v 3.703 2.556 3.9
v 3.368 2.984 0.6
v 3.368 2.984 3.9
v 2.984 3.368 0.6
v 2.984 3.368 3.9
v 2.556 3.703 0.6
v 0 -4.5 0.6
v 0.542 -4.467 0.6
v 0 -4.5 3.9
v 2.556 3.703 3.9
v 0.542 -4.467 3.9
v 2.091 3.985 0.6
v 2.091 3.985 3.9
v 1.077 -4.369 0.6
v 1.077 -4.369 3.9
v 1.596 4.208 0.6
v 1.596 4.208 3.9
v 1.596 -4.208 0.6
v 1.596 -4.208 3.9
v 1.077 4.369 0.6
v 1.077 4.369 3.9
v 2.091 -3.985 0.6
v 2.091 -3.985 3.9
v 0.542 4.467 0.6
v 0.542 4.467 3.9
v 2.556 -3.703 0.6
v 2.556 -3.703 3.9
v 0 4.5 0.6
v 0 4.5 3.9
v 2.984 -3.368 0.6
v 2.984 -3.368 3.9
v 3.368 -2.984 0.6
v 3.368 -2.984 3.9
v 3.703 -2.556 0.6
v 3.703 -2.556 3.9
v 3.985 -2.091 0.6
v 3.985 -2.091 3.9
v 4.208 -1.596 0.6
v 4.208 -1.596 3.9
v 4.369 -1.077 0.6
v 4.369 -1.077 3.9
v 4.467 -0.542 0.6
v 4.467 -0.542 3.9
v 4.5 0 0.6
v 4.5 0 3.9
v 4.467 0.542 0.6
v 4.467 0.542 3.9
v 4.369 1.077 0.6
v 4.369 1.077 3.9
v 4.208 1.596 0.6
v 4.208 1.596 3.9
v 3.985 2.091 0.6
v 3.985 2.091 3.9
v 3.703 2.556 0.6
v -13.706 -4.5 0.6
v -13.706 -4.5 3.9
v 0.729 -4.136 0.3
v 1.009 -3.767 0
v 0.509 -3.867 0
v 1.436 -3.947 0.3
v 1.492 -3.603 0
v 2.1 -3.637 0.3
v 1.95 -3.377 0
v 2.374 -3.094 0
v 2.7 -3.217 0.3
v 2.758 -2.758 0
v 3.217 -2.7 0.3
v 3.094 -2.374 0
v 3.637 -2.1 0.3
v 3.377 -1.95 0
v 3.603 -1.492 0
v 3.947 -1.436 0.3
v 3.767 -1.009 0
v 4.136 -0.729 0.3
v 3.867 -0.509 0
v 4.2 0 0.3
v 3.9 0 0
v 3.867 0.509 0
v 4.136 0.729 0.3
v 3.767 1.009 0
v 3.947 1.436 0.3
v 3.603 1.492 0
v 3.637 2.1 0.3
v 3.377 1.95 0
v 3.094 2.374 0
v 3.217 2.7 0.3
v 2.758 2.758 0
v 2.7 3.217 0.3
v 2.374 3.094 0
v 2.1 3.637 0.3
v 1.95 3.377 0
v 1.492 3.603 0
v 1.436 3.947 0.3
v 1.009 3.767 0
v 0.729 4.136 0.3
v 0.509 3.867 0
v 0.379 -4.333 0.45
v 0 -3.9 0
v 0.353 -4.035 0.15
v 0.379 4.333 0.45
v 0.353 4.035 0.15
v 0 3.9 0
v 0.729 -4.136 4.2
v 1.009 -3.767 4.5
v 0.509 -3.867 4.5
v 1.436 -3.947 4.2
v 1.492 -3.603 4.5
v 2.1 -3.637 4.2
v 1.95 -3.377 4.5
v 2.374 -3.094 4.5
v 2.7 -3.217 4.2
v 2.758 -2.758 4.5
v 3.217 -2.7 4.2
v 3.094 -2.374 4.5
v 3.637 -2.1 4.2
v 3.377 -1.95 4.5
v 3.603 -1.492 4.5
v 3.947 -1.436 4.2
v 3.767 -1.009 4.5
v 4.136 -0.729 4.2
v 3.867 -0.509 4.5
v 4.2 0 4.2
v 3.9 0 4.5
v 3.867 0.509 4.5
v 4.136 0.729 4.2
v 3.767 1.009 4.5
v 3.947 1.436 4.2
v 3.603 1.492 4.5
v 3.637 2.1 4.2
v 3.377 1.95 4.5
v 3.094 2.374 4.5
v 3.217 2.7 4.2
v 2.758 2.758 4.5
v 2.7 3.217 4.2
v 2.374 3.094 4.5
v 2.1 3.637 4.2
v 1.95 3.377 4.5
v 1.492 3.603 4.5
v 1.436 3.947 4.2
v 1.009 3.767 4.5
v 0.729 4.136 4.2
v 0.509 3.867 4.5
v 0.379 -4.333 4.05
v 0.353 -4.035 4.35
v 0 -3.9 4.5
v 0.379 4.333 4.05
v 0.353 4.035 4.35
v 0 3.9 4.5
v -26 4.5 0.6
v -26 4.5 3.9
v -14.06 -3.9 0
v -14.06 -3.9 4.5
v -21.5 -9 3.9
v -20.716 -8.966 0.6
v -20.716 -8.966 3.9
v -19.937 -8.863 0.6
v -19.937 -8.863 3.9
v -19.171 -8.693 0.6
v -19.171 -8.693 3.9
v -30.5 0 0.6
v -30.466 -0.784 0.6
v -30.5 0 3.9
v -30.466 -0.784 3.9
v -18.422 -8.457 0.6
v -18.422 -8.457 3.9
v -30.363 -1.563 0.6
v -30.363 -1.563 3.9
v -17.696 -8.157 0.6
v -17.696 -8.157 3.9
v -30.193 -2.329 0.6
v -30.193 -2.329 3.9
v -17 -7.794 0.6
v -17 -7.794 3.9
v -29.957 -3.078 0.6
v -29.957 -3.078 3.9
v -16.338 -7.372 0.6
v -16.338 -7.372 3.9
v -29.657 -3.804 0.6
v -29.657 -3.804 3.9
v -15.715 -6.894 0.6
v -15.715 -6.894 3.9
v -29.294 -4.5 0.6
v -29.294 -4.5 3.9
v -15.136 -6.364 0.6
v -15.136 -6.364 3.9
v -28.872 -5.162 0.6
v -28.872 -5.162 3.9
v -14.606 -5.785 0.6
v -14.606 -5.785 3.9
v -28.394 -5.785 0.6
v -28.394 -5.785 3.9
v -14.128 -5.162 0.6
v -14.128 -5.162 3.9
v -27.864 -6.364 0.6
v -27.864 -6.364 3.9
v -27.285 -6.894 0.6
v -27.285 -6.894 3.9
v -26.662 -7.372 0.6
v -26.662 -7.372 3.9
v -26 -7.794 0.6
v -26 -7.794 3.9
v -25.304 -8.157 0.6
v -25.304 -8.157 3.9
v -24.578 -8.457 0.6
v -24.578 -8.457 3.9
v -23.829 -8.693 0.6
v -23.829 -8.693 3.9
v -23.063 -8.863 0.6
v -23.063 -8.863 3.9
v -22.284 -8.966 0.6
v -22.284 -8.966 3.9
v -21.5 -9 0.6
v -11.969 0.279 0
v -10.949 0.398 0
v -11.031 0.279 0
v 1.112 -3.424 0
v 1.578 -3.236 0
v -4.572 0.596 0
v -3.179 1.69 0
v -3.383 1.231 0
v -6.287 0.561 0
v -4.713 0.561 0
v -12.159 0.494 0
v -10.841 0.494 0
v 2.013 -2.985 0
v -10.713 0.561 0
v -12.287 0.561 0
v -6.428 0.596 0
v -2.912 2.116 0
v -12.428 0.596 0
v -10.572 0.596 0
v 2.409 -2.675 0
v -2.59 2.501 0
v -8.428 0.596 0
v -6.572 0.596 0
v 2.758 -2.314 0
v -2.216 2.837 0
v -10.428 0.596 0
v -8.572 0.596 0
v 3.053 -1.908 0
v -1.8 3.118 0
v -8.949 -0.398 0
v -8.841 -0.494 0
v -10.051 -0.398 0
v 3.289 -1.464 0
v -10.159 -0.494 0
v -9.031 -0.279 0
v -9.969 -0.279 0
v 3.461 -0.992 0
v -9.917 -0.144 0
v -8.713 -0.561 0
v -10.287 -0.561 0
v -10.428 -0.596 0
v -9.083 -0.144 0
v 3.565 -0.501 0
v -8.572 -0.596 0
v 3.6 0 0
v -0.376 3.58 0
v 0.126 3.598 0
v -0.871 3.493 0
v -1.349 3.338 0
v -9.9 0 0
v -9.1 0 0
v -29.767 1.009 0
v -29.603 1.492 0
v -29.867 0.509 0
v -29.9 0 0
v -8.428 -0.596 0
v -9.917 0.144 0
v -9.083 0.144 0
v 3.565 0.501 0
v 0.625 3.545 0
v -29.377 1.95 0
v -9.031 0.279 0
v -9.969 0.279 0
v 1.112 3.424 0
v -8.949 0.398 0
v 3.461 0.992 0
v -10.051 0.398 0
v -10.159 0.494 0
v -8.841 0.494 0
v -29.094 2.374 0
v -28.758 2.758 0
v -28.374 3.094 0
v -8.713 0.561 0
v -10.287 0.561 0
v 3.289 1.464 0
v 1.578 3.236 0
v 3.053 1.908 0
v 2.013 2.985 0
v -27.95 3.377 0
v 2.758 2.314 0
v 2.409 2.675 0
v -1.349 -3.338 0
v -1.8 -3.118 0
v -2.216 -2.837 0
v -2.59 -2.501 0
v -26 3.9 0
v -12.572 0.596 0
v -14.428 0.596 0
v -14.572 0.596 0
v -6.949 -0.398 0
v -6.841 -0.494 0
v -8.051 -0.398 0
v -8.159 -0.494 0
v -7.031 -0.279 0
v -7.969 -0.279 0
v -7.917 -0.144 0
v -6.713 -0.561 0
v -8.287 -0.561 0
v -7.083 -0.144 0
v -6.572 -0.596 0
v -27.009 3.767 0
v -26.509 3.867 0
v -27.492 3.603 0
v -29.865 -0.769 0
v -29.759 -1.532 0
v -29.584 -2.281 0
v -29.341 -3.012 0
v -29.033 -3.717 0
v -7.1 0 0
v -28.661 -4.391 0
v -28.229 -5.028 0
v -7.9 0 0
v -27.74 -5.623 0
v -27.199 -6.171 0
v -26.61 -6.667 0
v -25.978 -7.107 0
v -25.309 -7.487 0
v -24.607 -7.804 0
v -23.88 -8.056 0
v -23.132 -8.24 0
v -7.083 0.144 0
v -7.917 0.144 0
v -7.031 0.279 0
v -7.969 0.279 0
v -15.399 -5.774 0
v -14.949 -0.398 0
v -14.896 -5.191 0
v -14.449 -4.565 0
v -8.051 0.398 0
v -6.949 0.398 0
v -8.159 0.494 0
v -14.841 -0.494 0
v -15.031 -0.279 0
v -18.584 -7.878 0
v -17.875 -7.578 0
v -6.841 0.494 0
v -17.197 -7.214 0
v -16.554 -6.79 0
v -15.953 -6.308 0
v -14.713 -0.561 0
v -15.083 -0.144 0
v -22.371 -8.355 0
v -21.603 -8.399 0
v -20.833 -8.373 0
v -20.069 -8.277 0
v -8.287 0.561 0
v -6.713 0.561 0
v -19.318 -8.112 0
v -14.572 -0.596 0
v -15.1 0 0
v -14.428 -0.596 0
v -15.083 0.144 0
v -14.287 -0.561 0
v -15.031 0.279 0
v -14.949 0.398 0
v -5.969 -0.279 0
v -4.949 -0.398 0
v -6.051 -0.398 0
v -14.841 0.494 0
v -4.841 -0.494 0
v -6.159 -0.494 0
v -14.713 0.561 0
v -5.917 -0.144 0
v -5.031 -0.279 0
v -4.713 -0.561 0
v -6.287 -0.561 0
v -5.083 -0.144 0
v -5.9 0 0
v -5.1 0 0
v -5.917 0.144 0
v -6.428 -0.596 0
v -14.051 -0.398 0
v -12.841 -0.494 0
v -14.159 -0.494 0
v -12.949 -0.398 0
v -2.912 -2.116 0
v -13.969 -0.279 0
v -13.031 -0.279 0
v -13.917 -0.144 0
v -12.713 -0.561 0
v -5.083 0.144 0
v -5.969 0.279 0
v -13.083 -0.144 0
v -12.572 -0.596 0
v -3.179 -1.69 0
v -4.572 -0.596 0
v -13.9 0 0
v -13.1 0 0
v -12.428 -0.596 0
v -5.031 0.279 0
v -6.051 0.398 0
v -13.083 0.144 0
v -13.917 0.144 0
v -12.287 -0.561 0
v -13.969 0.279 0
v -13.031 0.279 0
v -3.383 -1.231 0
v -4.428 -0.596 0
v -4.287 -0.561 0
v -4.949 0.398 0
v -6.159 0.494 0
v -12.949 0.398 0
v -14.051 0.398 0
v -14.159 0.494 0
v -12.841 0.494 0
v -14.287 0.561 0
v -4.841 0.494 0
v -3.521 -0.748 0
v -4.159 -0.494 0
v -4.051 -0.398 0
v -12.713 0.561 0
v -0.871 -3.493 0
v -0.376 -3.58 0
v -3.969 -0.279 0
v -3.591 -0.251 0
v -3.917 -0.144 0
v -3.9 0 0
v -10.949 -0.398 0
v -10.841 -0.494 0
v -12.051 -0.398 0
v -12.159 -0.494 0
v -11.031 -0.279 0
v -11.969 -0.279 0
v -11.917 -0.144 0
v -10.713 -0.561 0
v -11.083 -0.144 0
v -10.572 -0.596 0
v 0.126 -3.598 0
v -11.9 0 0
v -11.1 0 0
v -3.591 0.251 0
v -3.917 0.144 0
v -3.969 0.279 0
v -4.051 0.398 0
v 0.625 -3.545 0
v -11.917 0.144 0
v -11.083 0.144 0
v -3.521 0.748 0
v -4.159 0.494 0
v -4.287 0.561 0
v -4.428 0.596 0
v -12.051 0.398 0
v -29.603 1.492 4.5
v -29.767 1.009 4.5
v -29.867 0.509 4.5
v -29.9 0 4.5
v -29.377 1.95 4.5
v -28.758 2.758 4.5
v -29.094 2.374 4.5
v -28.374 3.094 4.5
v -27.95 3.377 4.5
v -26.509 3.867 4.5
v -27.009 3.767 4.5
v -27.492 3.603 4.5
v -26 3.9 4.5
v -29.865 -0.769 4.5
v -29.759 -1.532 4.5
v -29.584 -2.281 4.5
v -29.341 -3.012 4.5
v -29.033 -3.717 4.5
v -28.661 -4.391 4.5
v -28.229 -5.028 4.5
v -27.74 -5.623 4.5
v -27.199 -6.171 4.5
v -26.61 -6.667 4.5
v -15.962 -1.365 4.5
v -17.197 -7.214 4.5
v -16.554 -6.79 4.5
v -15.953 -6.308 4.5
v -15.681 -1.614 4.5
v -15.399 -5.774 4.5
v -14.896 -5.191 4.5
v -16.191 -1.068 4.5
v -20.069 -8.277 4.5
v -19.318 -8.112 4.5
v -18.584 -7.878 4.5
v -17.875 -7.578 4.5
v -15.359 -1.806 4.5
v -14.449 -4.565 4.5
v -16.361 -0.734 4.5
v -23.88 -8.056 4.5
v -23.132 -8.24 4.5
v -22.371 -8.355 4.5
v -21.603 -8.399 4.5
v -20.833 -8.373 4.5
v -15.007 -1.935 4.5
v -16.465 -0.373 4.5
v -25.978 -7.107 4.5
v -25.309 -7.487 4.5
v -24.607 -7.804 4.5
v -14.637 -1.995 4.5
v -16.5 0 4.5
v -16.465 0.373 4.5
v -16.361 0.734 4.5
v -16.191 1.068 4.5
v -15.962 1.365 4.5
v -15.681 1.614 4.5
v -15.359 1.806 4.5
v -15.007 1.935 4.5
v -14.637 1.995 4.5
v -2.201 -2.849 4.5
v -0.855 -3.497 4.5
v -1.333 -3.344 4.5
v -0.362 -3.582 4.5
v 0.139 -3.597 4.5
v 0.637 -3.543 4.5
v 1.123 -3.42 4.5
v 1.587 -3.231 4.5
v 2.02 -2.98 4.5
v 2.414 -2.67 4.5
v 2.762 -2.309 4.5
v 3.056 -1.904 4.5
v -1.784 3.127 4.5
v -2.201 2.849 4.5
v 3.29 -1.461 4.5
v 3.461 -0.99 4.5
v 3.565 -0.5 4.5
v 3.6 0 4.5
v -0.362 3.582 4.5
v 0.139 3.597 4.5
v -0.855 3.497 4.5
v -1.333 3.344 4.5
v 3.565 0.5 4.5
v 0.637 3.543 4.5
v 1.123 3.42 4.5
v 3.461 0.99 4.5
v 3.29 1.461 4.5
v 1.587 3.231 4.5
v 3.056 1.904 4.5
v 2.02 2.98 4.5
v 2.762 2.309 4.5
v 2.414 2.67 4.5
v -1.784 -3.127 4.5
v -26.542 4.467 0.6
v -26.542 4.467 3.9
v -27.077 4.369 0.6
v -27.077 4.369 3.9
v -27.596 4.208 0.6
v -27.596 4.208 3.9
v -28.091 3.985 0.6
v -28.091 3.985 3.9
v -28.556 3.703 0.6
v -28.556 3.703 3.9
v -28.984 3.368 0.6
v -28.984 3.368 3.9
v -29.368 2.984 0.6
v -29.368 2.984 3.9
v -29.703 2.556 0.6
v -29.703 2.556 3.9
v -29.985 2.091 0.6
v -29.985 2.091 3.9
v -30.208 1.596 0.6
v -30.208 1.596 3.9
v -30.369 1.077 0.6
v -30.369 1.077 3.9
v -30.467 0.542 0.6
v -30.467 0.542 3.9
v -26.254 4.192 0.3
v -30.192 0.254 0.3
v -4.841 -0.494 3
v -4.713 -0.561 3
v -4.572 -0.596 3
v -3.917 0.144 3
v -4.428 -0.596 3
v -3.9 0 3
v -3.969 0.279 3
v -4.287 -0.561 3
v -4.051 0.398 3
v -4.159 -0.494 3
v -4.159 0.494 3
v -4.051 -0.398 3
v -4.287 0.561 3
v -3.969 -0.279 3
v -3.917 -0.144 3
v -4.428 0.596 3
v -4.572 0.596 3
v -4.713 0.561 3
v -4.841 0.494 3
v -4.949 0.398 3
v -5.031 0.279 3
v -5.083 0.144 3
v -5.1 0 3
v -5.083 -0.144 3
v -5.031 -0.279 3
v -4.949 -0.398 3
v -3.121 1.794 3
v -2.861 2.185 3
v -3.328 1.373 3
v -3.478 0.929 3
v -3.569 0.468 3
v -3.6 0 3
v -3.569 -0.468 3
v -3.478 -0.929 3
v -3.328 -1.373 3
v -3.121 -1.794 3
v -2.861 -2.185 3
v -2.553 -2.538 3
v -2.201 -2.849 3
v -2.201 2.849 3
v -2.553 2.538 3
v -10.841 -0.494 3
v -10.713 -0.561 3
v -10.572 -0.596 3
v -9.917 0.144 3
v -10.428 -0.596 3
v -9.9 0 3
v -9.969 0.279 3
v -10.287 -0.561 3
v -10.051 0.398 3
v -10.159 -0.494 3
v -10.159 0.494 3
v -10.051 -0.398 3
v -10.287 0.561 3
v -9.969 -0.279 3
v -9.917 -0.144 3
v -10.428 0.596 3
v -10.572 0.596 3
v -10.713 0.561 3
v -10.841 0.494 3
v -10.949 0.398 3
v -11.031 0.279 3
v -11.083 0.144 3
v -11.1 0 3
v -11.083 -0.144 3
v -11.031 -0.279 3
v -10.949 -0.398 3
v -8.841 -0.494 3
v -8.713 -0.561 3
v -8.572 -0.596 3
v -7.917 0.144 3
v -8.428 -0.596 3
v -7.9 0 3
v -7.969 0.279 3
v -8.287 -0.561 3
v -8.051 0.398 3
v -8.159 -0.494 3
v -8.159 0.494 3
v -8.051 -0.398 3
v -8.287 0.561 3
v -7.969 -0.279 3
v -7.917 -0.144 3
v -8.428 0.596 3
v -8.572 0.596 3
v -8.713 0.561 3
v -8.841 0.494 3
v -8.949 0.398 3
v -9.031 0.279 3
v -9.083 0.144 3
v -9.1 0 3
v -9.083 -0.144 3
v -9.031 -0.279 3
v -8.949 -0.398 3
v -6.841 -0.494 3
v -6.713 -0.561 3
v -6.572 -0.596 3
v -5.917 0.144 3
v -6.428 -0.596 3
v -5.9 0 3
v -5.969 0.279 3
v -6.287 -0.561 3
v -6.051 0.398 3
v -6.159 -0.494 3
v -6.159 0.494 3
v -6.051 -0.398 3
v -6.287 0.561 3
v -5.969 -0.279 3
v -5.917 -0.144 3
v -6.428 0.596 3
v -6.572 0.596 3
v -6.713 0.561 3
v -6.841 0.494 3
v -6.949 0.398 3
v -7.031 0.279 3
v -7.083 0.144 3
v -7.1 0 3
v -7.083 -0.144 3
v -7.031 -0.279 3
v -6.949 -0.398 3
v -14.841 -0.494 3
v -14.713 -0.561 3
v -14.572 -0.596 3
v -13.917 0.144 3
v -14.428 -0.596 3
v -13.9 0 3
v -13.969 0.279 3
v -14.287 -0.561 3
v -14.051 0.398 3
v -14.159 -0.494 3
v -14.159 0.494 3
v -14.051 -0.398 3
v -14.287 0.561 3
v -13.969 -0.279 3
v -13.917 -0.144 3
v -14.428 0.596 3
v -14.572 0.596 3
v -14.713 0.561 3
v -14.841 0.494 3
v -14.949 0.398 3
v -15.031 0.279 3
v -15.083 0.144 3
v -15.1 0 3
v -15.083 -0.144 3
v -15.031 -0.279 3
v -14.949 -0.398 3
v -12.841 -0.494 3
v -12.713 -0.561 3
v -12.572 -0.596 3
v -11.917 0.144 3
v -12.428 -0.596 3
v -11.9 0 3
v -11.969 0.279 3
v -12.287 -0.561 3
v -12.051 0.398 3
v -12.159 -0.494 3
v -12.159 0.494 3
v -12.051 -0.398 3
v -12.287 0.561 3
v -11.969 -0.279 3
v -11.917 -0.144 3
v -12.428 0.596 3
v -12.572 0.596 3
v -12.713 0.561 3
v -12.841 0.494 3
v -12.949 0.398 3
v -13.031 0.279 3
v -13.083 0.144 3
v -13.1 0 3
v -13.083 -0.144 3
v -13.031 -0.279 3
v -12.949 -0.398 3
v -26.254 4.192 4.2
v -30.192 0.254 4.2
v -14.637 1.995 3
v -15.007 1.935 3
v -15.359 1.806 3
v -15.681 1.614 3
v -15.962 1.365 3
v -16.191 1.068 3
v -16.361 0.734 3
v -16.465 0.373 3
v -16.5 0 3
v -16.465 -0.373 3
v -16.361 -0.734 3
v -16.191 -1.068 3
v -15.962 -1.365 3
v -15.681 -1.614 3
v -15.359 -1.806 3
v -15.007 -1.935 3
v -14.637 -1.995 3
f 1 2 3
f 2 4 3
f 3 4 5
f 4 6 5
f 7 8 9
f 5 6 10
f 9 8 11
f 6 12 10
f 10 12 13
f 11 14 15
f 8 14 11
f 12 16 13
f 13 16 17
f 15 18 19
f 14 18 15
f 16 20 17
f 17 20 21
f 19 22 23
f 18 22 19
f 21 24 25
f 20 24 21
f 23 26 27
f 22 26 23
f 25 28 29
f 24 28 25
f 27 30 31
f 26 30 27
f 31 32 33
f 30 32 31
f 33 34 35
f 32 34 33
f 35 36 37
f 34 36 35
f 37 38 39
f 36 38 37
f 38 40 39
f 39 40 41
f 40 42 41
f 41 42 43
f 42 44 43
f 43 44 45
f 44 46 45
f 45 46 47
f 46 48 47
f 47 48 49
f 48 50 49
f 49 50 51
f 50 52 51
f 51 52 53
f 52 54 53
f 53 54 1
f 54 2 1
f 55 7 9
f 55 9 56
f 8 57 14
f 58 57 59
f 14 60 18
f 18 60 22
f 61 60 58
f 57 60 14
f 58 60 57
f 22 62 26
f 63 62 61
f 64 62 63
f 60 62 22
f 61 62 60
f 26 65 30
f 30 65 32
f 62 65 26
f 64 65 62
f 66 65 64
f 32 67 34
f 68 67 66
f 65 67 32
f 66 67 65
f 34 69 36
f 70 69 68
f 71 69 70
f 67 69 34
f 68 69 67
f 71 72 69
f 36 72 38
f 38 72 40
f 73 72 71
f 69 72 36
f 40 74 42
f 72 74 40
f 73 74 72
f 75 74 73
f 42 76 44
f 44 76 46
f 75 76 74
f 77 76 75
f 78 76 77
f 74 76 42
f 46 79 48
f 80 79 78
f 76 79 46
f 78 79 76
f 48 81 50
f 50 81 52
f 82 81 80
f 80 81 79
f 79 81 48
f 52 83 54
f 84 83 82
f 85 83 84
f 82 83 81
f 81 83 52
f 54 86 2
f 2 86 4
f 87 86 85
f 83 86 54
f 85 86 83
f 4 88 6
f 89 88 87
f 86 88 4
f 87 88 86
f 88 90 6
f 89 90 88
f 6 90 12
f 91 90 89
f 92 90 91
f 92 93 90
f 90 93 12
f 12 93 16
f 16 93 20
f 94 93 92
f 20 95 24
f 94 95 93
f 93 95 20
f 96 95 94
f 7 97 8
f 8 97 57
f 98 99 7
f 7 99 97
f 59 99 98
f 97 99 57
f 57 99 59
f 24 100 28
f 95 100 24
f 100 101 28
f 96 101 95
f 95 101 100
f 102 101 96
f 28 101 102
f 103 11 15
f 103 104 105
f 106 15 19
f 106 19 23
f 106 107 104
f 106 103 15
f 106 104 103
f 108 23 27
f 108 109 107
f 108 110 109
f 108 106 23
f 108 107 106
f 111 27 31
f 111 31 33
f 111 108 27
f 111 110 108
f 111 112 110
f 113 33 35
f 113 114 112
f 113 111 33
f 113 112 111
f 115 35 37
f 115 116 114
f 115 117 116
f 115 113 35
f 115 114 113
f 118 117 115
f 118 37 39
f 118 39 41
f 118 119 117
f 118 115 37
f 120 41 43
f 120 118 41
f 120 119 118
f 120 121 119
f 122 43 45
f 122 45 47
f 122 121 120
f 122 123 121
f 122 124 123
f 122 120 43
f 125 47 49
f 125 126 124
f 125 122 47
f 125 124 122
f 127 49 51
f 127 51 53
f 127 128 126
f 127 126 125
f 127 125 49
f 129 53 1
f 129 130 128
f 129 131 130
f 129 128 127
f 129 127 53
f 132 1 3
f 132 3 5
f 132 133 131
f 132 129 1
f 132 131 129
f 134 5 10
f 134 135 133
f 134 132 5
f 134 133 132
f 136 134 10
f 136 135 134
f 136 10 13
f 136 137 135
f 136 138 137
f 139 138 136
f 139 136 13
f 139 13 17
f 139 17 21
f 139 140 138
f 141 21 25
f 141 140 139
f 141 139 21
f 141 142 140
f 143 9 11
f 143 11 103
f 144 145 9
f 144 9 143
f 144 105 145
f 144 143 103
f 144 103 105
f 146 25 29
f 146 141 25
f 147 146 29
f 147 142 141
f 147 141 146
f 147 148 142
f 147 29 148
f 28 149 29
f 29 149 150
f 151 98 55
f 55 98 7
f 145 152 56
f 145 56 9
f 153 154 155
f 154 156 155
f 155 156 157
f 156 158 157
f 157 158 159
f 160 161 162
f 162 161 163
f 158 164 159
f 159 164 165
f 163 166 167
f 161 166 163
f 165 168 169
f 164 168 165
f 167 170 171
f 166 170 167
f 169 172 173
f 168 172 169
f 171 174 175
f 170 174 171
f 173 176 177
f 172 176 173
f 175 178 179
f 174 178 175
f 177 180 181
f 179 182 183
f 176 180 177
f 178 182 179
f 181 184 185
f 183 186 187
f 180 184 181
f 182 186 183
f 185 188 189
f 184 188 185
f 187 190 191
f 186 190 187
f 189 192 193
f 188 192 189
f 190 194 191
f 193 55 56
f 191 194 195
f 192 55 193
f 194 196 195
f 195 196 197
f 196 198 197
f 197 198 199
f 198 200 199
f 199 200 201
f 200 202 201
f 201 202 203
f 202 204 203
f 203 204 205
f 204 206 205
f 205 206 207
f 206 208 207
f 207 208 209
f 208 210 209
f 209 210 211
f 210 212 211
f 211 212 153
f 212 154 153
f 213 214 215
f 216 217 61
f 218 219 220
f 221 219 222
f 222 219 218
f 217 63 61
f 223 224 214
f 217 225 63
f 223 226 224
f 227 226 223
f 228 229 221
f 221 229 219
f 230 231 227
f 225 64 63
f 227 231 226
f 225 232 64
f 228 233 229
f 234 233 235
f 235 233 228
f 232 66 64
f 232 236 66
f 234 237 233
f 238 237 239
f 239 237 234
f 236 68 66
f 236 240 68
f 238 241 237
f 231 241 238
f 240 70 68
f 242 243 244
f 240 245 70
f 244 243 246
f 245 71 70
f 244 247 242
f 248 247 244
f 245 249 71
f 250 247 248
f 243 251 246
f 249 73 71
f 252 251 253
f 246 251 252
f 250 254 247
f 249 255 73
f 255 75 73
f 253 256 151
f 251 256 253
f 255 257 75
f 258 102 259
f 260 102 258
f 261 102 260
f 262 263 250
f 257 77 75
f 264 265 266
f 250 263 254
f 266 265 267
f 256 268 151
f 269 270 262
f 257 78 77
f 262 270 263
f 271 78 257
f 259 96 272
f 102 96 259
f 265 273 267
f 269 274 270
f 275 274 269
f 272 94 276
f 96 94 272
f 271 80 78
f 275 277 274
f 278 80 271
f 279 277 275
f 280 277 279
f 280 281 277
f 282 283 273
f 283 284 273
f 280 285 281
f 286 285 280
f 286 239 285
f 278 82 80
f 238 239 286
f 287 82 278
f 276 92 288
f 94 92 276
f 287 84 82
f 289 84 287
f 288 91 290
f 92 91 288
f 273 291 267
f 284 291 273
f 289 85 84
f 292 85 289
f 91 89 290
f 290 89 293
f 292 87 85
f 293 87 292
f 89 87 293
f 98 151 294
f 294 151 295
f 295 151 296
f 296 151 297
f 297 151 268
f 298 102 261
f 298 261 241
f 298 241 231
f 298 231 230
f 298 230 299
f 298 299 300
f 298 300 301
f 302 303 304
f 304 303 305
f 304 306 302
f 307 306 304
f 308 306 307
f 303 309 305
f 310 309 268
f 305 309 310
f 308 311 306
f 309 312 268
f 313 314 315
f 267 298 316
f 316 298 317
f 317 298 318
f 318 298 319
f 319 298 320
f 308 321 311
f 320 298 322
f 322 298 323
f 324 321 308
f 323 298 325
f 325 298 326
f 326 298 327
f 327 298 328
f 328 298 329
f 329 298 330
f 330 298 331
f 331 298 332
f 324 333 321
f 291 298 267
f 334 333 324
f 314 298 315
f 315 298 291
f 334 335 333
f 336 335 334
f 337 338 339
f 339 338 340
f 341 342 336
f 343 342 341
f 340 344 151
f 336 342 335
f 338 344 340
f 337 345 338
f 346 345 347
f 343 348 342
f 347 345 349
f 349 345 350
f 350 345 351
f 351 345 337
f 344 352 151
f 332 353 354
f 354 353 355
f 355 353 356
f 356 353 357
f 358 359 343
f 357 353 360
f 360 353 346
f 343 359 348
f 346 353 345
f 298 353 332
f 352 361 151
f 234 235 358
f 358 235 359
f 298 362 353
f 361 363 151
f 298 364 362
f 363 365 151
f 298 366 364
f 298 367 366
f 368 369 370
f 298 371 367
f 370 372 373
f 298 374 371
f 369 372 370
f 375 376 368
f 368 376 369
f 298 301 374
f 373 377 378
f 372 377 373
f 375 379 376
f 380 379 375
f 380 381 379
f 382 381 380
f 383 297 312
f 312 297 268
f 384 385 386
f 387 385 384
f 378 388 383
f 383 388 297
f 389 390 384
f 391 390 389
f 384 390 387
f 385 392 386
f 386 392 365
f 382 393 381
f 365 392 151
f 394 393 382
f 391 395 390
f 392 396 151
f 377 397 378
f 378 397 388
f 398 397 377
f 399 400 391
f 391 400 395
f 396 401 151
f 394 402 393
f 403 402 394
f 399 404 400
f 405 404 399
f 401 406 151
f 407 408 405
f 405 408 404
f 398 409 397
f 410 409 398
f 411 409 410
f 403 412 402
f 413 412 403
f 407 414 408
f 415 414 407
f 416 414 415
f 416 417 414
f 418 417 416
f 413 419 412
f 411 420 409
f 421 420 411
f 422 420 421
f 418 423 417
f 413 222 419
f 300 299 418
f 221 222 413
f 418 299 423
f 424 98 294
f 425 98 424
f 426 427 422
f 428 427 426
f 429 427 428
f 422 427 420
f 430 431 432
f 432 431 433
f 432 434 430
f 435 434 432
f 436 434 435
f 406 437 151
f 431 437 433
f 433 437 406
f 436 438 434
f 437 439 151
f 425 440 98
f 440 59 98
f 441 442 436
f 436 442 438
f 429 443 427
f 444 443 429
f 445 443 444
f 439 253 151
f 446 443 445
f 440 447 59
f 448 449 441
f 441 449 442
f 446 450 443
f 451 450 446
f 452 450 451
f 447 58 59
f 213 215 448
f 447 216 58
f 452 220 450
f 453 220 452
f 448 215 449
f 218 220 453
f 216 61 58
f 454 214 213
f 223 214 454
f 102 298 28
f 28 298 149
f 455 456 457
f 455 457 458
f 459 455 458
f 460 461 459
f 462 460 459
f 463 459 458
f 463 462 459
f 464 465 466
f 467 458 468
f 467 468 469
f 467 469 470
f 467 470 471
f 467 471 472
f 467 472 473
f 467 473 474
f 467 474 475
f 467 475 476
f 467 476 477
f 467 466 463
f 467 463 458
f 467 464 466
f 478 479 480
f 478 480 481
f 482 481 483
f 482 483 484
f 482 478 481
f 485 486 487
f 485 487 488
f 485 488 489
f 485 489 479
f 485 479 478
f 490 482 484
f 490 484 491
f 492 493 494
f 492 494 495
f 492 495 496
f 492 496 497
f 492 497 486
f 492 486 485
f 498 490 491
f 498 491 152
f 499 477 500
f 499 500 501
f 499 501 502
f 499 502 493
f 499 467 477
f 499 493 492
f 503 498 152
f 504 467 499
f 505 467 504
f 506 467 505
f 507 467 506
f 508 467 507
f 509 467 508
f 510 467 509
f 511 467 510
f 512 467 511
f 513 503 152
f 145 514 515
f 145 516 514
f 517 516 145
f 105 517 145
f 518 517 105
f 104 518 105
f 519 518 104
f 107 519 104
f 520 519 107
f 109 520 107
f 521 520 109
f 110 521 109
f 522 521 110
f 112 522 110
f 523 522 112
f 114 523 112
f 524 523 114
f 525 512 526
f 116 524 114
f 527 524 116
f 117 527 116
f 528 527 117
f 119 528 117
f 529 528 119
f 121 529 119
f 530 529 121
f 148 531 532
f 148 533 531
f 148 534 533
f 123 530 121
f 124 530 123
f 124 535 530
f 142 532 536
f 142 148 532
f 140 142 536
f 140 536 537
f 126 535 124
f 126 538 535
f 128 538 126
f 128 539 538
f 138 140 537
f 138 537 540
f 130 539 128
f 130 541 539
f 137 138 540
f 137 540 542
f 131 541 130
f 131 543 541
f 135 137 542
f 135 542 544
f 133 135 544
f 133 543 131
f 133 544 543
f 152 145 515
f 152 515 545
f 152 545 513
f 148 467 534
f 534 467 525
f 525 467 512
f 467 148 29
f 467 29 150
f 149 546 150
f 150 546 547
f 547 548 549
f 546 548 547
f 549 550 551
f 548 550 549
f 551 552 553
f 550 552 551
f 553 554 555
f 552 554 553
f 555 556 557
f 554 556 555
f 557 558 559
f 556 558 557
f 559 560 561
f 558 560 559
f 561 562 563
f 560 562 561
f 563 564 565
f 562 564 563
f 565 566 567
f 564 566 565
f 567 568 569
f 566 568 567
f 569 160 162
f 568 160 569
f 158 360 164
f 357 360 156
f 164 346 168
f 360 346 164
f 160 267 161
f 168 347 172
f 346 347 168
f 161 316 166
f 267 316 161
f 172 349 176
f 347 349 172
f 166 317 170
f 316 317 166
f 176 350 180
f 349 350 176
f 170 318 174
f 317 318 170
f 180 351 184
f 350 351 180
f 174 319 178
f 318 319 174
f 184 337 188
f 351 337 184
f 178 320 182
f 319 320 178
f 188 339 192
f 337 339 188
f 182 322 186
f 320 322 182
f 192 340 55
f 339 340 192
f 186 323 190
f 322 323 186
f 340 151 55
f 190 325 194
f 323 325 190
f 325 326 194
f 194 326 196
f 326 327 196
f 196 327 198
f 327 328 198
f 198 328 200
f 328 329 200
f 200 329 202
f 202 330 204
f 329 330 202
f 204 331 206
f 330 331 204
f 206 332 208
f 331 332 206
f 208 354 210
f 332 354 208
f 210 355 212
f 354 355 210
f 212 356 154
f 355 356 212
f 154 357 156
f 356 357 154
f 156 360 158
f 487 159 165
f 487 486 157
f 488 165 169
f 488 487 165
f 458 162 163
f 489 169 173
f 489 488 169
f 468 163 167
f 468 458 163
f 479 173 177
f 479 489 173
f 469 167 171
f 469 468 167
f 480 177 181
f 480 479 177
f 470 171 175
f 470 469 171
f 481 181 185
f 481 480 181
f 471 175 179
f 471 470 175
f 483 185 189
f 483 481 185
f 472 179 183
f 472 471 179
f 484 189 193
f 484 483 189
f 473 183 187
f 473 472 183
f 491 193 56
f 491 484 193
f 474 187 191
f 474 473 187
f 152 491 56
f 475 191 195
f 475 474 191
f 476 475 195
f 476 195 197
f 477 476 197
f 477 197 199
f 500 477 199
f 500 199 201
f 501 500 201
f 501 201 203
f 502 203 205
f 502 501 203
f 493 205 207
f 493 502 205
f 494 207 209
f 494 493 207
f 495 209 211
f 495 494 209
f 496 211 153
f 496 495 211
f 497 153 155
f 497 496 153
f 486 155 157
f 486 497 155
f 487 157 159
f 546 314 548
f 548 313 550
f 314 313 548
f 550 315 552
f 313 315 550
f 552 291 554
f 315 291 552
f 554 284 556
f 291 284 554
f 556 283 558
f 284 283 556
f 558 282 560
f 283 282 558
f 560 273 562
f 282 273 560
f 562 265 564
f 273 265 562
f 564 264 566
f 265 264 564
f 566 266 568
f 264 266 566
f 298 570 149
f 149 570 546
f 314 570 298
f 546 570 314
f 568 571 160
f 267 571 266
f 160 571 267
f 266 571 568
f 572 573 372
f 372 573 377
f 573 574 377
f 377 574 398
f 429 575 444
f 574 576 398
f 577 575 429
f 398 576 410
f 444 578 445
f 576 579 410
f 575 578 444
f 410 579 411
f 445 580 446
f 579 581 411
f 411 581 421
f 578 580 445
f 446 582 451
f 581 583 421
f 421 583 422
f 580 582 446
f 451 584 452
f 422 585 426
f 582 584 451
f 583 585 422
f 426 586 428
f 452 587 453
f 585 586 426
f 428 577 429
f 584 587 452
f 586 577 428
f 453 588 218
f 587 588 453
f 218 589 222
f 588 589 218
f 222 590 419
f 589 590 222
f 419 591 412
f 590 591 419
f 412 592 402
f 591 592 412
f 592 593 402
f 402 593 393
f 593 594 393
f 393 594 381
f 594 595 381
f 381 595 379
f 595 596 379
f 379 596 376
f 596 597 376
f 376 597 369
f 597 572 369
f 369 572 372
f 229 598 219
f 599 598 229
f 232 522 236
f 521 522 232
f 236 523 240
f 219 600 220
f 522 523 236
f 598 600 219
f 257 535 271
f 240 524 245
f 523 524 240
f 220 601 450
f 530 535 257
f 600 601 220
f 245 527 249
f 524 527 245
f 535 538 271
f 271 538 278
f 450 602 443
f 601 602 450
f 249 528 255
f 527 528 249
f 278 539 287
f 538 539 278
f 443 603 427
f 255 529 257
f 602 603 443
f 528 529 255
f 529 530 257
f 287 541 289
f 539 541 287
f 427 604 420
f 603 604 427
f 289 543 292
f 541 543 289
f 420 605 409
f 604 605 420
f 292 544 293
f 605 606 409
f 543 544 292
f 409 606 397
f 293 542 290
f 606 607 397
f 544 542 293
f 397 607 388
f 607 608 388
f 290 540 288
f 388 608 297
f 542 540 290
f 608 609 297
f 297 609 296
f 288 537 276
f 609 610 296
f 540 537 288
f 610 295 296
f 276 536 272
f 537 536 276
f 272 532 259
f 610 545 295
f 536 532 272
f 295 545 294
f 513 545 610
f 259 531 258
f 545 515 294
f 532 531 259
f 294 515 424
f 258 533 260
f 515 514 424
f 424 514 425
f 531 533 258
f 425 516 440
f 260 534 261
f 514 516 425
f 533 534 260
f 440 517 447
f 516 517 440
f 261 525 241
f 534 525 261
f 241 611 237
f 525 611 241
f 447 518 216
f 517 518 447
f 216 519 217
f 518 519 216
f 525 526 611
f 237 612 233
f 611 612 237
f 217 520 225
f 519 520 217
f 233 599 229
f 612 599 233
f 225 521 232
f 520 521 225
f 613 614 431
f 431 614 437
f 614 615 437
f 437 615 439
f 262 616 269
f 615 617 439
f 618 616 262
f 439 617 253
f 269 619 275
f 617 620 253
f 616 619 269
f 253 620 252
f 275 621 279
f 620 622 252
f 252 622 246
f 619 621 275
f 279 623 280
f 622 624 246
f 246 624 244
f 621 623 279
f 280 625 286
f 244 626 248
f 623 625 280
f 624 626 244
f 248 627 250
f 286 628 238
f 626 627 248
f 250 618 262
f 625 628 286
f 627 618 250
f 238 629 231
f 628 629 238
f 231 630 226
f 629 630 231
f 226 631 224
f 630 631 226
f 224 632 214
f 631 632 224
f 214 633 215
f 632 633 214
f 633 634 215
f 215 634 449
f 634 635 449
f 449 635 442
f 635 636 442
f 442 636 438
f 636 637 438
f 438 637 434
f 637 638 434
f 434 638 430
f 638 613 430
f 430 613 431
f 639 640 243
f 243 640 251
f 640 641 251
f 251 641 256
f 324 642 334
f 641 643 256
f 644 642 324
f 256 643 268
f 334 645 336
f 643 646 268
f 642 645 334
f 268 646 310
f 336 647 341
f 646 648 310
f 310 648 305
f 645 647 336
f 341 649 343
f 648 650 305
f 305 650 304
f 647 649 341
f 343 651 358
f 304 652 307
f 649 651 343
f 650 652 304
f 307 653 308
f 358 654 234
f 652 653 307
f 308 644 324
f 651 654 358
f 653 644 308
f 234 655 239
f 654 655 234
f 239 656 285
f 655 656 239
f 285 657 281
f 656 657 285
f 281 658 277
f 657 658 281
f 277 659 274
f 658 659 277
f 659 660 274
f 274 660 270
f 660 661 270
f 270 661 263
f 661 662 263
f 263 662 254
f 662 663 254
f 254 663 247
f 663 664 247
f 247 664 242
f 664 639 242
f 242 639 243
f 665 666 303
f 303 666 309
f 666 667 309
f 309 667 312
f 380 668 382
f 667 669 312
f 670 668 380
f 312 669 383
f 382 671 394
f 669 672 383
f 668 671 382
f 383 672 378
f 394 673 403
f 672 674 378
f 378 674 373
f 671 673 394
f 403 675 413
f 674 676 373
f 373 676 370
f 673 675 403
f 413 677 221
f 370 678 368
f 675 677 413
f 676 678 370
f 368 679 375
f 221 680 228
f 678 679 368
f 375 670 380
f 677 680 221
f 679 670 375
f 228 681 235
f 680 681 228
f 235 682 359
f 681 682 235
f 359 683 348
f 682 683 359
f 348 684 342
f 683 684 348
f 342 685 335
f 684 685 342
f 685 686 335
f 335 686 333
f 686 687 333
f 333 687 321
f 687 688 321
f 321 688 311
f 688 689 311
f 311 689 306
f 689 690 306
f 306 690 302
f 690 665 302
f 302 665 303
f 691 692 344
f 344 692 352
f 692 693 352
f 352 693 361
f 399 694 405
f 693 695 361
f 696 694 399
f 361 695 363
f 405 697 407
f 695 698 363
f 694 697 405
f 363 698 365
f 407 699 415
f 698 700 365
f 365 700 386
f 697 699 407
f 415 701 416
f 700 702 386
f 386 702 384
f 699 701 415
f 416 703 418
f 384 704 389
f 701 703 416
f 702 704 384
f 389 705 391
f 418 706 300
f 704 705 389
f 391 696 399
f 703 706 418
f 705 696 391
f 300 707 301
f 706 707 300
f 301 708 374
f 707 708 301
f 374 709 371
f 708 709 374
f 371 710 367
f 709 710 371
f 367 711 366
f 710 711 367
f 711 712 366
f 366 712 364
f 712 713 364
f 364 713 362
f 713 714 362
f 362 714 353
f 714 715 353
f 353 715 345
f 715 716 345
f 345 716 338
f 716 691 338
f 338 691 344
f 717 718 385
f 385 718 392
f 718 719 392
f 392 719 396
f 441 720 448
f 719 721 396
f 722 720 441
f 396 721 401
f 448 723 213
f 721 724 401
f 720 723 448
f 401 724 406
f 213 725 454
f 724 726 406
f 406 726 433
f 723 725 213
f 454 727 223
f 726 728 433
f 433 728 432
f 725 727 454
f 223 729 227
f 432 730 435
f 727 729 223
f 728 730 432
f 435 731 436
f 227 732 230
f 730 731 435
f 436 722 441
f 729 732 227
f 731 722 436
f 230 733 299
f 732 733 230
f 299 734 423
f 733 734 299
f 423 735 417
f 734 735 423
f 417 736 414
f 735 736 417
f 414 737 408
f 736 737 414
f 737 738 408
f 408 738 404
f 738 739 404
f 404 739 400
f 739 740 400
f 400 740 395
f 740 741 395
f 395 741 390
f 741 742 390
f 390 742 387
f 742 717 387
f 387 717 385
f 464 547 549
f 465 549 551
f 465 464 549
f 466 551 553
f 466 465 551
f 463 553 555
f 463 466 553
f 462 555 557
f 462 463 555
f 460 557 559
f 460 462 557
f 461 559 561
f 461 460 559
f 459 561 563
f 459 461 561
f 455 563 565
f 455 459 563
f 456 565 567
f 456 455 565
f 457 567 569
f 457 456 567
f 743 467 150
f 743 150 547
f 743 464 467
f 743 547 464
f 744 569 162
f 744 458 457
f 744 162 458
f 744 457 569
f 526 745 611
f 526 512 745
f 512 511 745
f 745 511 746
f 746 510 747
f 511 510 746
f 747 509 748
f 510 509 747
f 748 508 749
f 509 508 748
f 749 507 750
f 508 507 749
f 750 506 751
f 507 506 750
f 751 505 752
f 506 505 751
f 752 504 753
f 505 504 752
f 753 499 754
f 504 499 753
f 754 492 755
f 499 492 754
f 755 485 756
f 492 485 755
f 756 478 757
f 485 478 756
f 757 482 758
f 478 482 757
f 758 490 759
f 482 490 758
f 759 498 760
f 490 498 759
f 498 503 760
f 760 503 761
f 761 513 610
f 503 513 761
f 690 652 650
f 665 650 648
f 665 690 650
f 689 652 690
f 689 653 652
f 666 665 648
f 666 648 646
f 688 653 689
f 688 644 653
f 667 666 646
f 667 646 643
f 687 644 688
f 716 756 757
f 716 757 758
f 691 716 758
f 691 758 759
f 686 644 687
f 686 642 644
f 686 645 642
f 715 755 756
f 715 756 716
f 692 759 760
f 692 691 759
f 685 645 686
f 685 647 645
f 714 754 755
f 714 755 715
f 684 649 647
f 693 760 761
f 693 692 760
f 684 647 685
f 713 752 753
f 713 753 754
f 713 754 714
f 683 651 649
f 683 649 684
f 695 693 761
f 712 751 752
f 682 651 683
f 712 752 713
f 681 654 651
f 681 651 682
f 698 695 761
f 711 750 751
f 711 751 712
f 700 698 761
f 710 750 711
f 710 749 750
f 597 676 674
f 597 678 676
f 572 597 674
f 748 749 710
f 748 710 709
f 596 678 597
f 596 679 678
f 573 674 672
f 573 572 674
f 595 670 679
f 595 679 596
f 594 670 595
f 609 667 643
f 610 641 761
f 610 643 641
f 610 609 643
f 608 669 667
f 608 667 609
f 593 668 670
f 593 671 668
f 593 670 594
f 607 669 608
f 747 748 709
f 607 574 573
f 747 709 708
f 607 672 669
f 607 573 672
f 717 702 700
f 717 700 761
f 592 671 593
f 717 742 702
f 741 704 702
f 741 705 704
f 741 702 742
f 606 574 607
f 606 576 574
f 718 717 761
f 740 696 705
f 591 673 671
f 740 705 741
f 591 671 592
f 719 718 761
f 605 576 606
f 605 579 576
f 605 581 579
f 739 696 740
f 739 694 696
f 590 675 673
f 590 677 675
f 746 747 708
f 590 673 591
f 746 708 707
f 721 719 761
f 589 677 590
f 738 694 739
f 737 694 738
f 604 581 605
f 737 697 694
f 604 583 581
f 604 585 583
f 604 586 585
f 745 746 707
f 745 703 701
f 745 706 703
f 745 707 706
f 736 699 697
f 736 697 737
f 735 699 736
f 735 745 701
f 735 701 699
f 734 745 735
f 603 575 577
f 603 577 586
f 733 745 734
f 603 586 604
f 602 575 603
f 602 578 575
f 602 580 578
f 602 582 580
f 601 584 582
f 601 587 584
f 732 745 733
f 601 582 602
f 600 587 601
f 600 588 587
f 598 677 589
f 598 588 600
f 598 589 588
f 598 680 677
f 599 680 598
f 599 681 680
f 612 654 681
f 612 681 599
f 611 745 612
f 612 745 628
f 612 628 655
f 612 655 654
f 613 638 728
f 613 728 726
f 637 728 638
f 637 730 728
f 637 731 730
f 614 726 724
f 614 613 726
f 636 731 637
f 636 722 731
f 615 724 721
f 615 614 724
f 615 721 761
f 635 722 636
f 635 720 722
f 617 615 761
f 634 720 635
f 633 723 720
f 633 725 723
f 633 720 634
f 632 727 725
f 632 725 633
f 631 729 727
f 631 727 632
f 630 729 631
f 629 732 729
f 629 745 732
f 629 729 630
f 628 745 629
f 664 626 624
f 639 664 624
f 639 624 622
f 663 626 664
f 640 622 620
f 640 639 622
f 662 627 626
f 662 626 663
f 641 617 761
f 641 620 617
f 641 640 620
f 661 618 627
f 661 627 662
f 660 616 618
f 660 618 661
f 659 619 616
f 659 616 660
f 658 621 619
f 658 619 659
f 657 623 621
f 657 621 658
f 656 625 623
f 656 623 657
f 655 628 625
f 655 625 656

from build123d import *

# Parameters (mm, degrees)
PAD_DEPTH       = 4.5
SKETCH001_R     = 3.6
POCKET_DEPTH    = 4.501
POCKET001_DEPTH = 1.5
SKETCH003_R     = 0.6
POCKET002_DEPTH = 3.001
CHAMFER_SIZE    = 0.6


with BuildPart() as part:
    # Sketch → Pad (new body)
    with BuildSketch(Plane.XY):
        with BuildLine():
            ThreePointArc((0, -4.5), (4.5, 0), (0, 4.5))
            Line((0, 4.5), (-26, 4.5))
            ThreePointArc((-26, 4.5), (-29.181981, 3.181981), (-30.5, 0))
            ThreePointArc((-30.5, 0), (-23.829371, -8.693332), (-13.705771, -4.5))
            Line((0, -4.5), (-13.705771, -4.5))
        make_face()
    extrude(amount=PAD_DEPTH)

    # Sketch001 (on Face7 of Pad) → Pocket (cut, through all)
    with BuildSketch(Plane.XY.offset(4.5)):
        Circle(SKETCH001_R)
    extrude(amount=-POCKET_DEPTH, mode=Mode.SUBTRACT)

    # Sketch002 (on Face5 of Pocket) → Pocket001 (cut)
    with BuildSketch(Plane.XY.offset(4.5)):
        with BuildLine():
            ThreePointArc((-14.63696, 1.995305), (-16.5, 0), (-14.63696, -1.995305))
            Line((-14.63696, -1.995305), (0, -3))
            Line((0, 3), (0, -3))
            Line((-14.63696, 1.995305), (0, 3))
        make_face()
    extrude(amount=-POCKET001_DEPTH, mode=Mode.SUBTRACT)

    # Sketch003 (on Face12 of Pocket001) → Pocket002 (cut, through all)
    with BuildSketch(Plane.XY.offset(3)):
        with Locations((-14.5, 0)):
            Circle(SKETCH003_R)
        with Locations((-12.5, 0)):
            Circle(SKETCH003_R)
        with Locations((-10.5, 0)):
            Circle(SKETCH003_R)
        with Locations((-8.5, 0)):
            Circle(SKETCH003_R)
        with Locations((-6.5, 0)):
            Circle(SKETCH003_R)
        with Locations((-4.5, 0)):
            Circle(SKETCH003_R)
    extrude(amount=-POCKET002_DEPTH, mode=Mode.SUBTRACT)

    # Chamfer
    chamfer_edges = [part.edges().sort_by_distance(p)[0] for p in [
        (-23.829371, -8.693332, 4.5),
        (-23.829371, -8.693332, 0),
    ]]
    chamfer(chamfer_edges, length=CHAMFER_SIZE)


solid = part.part
